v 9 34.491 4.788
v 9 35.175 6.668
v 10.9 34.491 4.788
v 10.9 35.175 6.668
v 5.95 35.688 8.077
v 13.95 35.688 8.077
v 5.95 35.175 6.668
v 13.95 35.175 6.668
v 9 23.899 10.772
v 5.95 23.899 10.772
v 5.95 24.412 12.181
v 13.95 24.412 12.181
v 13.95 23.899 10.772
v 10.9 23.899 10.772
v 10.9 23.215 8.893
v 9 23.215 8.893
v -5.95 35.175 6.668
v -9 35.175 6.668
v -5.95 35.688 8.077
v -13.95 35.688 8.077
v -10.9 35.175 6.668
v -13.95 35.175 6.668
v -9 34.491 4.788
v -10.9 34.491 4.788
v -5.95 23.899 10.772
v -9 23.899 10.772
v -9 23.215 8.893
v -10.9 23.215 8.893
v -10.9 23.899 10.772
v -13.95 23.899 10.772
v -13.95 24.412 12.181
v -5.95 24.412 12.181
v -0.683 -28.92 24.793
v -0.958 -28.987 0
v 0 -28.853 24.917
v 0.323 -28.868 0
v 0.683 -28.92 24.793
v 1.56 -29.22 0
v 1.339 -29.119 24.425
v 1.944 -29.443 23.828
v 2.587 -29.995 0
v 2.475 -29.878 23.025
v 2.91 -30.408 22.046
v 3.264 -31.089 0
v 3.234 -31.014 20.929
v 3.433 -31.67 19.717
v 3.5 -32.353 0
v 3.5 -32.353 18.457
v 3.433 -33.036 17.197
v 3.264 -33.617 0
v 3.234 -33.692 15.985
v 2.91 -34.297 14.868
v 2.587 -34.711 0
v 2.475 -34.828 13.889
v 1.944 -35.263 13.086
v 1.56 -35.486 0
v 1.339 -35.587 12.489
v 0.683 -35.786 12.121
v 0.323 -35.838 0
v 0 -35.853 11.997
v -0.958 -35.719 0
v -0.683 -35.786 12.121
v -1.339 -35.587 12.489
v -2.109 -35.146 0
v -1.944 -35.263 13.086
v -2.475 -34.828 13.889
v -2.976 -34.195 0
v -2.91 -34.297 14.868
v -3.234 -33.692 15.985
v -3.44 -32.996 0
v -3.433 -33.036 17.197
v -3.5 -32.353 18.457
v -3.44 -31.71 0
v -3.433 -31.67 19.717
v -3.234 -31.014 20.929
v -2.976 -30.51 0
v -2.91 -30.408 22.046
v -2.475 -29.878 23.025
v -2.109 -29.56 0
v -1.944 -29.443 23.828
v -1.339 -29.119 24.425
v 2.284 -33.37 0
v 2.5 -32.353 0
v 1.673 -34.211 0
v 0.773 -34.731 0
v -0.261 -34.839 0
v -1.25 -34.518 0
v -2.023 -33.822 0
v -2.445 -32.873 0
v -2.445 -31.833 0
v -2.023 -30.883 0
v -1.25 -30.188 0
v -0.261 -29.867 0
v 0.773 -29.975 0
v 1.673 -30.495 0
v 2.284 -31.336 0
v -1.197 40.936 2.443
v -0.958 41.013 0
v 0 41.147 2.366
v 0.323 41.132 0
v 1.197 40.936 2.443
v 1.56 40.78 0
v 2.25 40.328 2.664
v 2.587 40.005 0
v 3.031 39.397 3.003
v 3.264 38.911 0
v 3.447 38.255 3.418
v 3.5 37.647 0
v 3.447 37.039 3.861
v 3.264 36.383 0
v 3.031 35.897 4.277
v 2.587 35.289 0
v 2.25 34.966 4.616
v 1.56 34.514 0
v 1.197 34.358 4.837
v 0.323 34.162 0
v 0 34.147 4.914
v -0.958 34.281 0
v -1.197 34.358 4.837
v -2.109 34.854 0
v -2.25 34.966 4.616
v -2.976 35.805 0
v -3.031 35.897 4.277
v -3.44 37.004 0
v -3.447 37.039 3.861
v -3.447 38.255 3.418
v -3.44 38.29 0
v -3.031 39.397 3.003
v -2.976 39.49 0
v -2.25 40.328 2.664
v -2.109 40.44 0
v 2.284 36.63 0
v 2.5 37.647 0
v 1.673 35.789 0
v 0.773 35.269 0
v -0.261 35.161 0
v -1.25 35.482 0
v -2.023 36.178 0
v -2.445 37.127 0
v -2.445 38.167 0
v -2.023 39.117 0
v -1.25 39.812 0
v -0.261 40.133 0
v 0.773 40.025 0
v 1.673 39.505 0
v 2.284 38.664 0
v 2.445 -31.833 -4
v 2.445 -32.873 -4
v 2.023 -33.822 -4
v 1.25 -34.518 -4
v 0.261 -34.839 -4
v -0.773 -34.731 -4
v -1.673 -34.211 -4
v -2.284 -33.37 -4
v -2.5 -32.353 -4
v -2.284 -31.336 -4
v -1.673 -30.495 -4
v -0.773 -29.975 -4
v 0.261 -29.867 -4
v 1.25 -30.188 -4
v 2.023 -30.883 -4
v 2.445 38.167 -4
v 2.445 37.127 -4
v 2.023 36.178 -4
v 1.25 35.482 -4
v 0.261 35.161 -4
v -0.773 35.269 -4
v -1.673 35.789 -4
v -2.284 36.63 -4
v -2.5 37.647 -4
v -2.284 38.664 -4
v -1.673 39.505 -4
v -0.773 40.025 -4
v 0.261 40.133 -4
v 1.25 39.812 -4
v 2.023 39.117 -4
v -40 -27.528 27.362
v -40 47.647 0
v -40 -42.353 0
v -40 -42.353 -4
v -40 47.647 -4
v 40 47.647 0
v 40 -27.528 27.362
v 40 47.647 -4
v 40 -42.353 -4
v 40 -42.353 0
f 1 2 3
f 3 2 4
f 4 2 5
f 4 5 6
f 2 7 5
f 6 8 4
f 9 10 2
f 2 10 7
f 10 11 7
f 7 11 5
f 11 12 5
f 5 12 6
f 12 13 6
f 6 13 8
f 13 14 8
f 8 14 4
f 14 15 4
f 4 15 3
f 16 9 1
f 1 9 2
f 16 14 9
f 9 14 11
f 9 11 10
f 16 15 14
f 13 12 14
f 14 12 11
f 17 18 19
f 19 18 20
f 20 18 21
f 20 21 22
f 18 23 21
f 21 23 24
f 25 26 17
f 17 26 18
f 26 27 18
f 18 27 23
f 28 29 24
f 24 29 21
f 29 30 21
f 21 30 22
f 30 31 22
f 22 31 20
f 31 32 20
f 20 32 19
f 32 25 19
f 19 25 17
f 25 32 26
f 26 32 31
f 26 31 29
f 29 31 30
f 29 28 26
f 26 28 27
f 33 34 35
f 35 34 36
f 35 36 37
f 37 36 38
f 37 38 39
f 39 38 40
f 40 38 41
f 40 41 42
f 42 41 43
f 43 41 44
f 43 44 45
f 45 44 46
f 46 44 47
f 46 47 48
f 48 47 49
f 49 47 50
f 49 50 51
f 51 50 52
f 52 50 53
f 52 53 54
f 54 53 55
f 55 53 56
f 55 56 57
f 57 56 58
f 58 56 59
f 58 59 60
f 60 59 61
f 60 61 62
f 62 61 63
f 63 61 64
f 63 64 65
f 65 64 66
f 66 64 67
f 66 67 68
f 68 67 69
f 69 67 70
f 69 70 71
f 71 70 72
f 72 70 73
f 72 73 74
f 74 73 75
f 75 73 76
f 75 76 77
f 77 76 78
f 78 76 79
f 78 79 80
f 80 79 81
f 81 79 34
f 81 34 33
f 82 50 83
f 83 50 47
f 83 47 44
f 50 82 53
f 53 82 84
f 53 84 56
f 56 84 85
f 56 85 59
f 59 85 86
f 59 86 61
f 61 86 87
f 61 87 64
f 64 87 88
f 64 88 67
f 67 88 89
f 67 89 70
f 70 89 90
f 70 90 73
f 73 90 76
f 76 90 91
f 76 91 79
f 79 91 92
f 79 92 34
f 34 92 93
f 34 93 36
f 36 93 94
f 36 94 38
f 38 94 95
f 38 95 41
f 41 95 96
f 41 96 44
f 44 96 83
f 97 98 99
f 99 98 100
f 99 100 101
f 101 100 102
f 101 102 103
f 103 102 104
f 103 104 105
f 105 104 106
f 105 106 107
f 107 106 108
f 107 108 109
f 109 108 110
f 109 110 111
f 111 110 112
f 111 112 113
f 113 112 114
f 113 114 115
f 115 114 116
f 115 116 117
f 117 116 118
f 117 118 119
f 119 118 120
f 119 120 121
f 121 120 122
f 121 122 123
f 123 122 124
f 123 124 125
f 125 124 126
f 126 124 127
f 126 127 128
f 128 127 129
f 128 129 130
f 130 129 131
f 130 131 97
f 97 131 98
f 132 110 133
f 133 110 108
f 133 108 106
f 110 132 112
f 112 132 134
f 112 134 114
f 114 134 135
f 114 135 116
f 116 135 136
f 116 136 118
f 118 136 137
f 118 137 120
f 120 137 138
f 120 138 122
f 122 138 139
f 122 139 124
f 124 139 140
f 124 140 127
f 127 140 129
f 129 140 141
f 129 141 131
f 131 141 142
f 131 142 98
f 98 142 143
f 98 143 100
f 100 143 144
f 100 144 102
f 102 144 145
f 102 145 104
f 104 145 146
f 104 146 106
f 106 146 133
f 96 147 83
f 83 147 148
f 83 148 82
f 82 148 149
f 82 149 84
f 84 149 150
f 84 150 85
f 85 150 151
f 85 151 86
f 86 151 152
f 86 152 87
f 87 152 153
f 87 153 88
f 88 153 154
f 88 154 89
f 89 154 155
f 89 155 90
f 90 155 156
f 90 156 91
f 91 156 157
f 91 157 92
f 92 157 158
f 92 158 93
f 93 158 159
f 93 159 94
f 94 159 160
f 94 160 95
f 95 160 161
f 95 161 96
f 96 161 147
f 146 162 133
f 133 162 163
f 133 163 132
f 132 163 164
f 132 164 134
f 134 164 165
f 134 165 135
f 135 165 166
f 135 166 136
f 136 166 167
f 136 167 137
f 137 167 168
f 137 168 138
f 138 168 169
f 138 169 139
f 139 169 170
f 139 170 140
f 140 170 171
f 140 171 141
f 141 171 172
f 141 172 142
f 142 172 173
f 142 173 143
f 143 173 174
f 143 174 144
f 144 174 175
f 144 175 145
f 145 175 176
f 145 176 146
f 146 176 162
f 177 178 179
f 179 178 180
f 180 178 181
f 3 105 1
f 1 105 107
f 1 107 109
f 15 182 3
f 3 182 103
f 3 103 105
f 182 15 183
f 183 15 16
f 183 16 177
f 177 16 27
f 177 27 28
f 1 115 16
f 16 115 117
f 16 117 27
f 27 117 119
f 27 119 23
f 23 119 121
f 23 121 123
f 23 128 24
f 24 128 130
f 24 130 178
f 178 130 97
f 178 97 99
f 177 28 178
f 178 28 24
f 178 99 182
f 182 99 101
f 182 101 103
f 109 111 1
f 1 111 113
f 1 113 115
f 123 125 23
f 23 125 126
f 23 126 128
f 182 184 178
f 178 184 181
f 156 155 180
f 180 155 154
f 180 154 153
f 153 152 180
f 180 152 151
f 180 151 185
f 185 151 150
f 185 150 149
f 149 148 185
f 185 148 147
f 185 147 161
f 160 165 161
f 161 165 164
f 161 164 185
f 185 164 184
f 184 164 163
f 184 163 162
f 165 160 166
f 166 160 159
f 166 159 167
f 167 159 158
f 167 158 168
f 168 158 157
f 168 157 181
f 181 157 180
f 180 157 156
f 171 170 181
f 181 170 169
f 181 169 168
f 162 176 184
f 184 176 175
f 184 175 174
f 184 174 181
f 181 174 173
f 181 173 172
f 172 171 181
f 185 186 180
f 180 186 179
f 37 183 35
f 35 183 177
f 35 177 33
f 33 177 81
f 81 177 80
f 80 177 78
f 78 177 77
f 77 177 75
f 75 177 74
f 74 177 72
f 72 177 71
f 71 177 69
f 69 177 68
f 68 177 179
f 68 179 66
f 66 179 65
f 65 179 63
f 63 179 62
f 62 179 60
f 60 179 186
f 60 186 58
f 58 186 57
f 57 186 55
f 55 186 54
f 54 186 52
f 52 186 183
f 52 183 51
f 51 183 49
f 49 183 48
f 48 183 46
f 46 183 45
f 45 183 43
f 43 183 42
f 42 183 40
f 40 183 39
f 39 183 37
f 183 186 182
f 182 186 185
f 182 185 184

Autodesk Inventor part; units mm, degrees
ref_plane "YZ Plane" through (0, 0, 0) normal (1, 0, 0) x (0, 1, 0)
sketch "스케치2" plane through (0, 0, 0) normal (1, 0, 0) x (0, 1, 0)
  line L0 (-42.3529, 0) -> (47.6471, 0) construction
  line L1 (47.6471, 0) -> (-27.5284, 27.3616)
  line L2 (-27.5284, 27.3616) -> (-42.3529, 0)
  line L3 (47.6471, 0) -> (-42.3529, 0) construction
  line L4 (-42.3529, 0) -> (-42.3529, -4)
  line L5 (-42.3529, -4) -> (47.6471, -4)
  line L6 (47.6471, -4) -> (47.6471, 0)
  point P0 (0, 0)
  dimension "d2" = 90
  dimension "d3" = 80
  dimension "d4" = 20
  dimension "d7" = 4
extrude "돌출2" add sketch "스케치2" along normal mid plane 80
sketch "스케치3" plane through (40, 47.6471, -4) normal (0, 0, -1) x (-1, 0, 0)
  line L0 (80, 0) -> (0, 0) projected
  line L1 (0, -10) -> (40, -10)
  line L2 (80, -90) -> (0, -90) projected
  line L3 (0, -75.1754) -> (0, -90) projected
  line L4 (0, -80) -> (80, -80)
  line L5 (80, 0) -> (80, -90) projected
  line L6 (40, -93) -> (40, 7) construction
  circle A0 centre (40, -80) radius 2.5
  circle A1 centre (40, -10) radius 2.5
  line L7 (0, 0) -> (0, -75.1754) projected
  point P0 (40, -47.6471)
  dimension "d10" = 10
  dimension "d12" = 10
  dimension "d13" = 5
  dimension "d14" = 5
  dimension "d44" = 40
extrude "돌출3" cut sketch "스케치3" against normal blind 40 contours A1 | A0 L4 | L4 A0
ref_plane "작업 평면3" through (0, 0, 27) normal (0, 0, 1) x (1, 0, 0)
sketch "스케치4" plane through (0, 0, 27) normal (0, 0, 1) x (1, 0, 0)
  circle A0 centre (0, 37.6471) radius 2.5 projected
  circle A1 centre (0, -32.3529) radius 2.5 projected
  circle A2 centre (0, 37.6471) radius 3.5
  circle A3 centre (0, -32.3529) radius 3.5
  point P0 (0, 0)
  dimension "d18" = 7
  dimension "d19" = 7
extrude "돌출4" cut sketch "스케치4" against normal blind 27 contours A0 | A1 | A2 | A3
sketch "스케치5" plane through (-40, -27.5284, 27.3616) normal (0, 0.342, 0.9397) x (1, 0, 0)
  line L0 (20, 80) -> (20, -25) construction
  line L1 (-10, 60) -> (63, 60) construction
  line L2 (0, 80) -> (80, 80) projected
  point P0 (40, 35.2264)
  dimension "d22" = 20
ref_plane "작업 평면4" through (-50, 28.8532, 6.8404) normal (0, -0.9397, 0.342) x (1, 0, 0)
sketch "스케치6" plane through (-50, 28.8532, 6.8404) normal (0, -0.9397, 0.342) x (1, 0, 0)
  line L0 (50, 15) -> (50, -51) construction
  line L1 (46.5, 0) -> (53.5, 0) projected
  line L2 (10, 0) -> (90, 0) projected
  line L3 (21, 0) -> (21, 0)
  line L4 (90, 0) -> (90, -30.7818) projected
  line L5 (39.1, 0) -> (41, 0)
  line L6 (41, 0) -> (41, 2)
  line L7 (39.1, 2) -> (39.1, 0)
  line L8 (36.05, 3.5) -> (44.05, 3.5)
  line L9 (44.05, 3.5) -> (44.05, 2)
  line L10 (36.05, 2) -> (36.05, 3.5)
  line L11 (44.05, 2) -> (41, 2)
  line L12 (39.1, 2) -> (36.05, 2)
  line L13 (59, 0) -> (59, 2)
  line L14 (60.9, 2) -> (60.9, 0)
  line L15 (63.95, 3.5) -> (55.95, 3.5)
  line L16 (55.95, 3.5) -> (55.95, 2)
  line L17 (63.95, 2) -> (63.95, 3.5)
  line L18 (55.95, 2) -> (59, 2)
  line L19 (60.9, 2) -> (63.95, 2)
  line L20 (10, -30.7818) -> (10, 0) projected
  point P0 (50, -16.2963)
  point P1 (41, 1)
  point P2 (59, 1)
  point P3 (59, 0)
  point P4 (60.9, 0)
  dimension "d30" = 9
  dimension "d35" = 8
  dimension "d36" = 1.5
  dimension "d37" = 2
  dimension "d38" = 3.05
  dimension "d41" = 1.5
  dimension "d42" = 3.05
  dimension "d43" = 40
extrude "돌출5" add sketch "스케치6" along normal mid plane 12
properties part number "LCD_Mount_20degrees"
